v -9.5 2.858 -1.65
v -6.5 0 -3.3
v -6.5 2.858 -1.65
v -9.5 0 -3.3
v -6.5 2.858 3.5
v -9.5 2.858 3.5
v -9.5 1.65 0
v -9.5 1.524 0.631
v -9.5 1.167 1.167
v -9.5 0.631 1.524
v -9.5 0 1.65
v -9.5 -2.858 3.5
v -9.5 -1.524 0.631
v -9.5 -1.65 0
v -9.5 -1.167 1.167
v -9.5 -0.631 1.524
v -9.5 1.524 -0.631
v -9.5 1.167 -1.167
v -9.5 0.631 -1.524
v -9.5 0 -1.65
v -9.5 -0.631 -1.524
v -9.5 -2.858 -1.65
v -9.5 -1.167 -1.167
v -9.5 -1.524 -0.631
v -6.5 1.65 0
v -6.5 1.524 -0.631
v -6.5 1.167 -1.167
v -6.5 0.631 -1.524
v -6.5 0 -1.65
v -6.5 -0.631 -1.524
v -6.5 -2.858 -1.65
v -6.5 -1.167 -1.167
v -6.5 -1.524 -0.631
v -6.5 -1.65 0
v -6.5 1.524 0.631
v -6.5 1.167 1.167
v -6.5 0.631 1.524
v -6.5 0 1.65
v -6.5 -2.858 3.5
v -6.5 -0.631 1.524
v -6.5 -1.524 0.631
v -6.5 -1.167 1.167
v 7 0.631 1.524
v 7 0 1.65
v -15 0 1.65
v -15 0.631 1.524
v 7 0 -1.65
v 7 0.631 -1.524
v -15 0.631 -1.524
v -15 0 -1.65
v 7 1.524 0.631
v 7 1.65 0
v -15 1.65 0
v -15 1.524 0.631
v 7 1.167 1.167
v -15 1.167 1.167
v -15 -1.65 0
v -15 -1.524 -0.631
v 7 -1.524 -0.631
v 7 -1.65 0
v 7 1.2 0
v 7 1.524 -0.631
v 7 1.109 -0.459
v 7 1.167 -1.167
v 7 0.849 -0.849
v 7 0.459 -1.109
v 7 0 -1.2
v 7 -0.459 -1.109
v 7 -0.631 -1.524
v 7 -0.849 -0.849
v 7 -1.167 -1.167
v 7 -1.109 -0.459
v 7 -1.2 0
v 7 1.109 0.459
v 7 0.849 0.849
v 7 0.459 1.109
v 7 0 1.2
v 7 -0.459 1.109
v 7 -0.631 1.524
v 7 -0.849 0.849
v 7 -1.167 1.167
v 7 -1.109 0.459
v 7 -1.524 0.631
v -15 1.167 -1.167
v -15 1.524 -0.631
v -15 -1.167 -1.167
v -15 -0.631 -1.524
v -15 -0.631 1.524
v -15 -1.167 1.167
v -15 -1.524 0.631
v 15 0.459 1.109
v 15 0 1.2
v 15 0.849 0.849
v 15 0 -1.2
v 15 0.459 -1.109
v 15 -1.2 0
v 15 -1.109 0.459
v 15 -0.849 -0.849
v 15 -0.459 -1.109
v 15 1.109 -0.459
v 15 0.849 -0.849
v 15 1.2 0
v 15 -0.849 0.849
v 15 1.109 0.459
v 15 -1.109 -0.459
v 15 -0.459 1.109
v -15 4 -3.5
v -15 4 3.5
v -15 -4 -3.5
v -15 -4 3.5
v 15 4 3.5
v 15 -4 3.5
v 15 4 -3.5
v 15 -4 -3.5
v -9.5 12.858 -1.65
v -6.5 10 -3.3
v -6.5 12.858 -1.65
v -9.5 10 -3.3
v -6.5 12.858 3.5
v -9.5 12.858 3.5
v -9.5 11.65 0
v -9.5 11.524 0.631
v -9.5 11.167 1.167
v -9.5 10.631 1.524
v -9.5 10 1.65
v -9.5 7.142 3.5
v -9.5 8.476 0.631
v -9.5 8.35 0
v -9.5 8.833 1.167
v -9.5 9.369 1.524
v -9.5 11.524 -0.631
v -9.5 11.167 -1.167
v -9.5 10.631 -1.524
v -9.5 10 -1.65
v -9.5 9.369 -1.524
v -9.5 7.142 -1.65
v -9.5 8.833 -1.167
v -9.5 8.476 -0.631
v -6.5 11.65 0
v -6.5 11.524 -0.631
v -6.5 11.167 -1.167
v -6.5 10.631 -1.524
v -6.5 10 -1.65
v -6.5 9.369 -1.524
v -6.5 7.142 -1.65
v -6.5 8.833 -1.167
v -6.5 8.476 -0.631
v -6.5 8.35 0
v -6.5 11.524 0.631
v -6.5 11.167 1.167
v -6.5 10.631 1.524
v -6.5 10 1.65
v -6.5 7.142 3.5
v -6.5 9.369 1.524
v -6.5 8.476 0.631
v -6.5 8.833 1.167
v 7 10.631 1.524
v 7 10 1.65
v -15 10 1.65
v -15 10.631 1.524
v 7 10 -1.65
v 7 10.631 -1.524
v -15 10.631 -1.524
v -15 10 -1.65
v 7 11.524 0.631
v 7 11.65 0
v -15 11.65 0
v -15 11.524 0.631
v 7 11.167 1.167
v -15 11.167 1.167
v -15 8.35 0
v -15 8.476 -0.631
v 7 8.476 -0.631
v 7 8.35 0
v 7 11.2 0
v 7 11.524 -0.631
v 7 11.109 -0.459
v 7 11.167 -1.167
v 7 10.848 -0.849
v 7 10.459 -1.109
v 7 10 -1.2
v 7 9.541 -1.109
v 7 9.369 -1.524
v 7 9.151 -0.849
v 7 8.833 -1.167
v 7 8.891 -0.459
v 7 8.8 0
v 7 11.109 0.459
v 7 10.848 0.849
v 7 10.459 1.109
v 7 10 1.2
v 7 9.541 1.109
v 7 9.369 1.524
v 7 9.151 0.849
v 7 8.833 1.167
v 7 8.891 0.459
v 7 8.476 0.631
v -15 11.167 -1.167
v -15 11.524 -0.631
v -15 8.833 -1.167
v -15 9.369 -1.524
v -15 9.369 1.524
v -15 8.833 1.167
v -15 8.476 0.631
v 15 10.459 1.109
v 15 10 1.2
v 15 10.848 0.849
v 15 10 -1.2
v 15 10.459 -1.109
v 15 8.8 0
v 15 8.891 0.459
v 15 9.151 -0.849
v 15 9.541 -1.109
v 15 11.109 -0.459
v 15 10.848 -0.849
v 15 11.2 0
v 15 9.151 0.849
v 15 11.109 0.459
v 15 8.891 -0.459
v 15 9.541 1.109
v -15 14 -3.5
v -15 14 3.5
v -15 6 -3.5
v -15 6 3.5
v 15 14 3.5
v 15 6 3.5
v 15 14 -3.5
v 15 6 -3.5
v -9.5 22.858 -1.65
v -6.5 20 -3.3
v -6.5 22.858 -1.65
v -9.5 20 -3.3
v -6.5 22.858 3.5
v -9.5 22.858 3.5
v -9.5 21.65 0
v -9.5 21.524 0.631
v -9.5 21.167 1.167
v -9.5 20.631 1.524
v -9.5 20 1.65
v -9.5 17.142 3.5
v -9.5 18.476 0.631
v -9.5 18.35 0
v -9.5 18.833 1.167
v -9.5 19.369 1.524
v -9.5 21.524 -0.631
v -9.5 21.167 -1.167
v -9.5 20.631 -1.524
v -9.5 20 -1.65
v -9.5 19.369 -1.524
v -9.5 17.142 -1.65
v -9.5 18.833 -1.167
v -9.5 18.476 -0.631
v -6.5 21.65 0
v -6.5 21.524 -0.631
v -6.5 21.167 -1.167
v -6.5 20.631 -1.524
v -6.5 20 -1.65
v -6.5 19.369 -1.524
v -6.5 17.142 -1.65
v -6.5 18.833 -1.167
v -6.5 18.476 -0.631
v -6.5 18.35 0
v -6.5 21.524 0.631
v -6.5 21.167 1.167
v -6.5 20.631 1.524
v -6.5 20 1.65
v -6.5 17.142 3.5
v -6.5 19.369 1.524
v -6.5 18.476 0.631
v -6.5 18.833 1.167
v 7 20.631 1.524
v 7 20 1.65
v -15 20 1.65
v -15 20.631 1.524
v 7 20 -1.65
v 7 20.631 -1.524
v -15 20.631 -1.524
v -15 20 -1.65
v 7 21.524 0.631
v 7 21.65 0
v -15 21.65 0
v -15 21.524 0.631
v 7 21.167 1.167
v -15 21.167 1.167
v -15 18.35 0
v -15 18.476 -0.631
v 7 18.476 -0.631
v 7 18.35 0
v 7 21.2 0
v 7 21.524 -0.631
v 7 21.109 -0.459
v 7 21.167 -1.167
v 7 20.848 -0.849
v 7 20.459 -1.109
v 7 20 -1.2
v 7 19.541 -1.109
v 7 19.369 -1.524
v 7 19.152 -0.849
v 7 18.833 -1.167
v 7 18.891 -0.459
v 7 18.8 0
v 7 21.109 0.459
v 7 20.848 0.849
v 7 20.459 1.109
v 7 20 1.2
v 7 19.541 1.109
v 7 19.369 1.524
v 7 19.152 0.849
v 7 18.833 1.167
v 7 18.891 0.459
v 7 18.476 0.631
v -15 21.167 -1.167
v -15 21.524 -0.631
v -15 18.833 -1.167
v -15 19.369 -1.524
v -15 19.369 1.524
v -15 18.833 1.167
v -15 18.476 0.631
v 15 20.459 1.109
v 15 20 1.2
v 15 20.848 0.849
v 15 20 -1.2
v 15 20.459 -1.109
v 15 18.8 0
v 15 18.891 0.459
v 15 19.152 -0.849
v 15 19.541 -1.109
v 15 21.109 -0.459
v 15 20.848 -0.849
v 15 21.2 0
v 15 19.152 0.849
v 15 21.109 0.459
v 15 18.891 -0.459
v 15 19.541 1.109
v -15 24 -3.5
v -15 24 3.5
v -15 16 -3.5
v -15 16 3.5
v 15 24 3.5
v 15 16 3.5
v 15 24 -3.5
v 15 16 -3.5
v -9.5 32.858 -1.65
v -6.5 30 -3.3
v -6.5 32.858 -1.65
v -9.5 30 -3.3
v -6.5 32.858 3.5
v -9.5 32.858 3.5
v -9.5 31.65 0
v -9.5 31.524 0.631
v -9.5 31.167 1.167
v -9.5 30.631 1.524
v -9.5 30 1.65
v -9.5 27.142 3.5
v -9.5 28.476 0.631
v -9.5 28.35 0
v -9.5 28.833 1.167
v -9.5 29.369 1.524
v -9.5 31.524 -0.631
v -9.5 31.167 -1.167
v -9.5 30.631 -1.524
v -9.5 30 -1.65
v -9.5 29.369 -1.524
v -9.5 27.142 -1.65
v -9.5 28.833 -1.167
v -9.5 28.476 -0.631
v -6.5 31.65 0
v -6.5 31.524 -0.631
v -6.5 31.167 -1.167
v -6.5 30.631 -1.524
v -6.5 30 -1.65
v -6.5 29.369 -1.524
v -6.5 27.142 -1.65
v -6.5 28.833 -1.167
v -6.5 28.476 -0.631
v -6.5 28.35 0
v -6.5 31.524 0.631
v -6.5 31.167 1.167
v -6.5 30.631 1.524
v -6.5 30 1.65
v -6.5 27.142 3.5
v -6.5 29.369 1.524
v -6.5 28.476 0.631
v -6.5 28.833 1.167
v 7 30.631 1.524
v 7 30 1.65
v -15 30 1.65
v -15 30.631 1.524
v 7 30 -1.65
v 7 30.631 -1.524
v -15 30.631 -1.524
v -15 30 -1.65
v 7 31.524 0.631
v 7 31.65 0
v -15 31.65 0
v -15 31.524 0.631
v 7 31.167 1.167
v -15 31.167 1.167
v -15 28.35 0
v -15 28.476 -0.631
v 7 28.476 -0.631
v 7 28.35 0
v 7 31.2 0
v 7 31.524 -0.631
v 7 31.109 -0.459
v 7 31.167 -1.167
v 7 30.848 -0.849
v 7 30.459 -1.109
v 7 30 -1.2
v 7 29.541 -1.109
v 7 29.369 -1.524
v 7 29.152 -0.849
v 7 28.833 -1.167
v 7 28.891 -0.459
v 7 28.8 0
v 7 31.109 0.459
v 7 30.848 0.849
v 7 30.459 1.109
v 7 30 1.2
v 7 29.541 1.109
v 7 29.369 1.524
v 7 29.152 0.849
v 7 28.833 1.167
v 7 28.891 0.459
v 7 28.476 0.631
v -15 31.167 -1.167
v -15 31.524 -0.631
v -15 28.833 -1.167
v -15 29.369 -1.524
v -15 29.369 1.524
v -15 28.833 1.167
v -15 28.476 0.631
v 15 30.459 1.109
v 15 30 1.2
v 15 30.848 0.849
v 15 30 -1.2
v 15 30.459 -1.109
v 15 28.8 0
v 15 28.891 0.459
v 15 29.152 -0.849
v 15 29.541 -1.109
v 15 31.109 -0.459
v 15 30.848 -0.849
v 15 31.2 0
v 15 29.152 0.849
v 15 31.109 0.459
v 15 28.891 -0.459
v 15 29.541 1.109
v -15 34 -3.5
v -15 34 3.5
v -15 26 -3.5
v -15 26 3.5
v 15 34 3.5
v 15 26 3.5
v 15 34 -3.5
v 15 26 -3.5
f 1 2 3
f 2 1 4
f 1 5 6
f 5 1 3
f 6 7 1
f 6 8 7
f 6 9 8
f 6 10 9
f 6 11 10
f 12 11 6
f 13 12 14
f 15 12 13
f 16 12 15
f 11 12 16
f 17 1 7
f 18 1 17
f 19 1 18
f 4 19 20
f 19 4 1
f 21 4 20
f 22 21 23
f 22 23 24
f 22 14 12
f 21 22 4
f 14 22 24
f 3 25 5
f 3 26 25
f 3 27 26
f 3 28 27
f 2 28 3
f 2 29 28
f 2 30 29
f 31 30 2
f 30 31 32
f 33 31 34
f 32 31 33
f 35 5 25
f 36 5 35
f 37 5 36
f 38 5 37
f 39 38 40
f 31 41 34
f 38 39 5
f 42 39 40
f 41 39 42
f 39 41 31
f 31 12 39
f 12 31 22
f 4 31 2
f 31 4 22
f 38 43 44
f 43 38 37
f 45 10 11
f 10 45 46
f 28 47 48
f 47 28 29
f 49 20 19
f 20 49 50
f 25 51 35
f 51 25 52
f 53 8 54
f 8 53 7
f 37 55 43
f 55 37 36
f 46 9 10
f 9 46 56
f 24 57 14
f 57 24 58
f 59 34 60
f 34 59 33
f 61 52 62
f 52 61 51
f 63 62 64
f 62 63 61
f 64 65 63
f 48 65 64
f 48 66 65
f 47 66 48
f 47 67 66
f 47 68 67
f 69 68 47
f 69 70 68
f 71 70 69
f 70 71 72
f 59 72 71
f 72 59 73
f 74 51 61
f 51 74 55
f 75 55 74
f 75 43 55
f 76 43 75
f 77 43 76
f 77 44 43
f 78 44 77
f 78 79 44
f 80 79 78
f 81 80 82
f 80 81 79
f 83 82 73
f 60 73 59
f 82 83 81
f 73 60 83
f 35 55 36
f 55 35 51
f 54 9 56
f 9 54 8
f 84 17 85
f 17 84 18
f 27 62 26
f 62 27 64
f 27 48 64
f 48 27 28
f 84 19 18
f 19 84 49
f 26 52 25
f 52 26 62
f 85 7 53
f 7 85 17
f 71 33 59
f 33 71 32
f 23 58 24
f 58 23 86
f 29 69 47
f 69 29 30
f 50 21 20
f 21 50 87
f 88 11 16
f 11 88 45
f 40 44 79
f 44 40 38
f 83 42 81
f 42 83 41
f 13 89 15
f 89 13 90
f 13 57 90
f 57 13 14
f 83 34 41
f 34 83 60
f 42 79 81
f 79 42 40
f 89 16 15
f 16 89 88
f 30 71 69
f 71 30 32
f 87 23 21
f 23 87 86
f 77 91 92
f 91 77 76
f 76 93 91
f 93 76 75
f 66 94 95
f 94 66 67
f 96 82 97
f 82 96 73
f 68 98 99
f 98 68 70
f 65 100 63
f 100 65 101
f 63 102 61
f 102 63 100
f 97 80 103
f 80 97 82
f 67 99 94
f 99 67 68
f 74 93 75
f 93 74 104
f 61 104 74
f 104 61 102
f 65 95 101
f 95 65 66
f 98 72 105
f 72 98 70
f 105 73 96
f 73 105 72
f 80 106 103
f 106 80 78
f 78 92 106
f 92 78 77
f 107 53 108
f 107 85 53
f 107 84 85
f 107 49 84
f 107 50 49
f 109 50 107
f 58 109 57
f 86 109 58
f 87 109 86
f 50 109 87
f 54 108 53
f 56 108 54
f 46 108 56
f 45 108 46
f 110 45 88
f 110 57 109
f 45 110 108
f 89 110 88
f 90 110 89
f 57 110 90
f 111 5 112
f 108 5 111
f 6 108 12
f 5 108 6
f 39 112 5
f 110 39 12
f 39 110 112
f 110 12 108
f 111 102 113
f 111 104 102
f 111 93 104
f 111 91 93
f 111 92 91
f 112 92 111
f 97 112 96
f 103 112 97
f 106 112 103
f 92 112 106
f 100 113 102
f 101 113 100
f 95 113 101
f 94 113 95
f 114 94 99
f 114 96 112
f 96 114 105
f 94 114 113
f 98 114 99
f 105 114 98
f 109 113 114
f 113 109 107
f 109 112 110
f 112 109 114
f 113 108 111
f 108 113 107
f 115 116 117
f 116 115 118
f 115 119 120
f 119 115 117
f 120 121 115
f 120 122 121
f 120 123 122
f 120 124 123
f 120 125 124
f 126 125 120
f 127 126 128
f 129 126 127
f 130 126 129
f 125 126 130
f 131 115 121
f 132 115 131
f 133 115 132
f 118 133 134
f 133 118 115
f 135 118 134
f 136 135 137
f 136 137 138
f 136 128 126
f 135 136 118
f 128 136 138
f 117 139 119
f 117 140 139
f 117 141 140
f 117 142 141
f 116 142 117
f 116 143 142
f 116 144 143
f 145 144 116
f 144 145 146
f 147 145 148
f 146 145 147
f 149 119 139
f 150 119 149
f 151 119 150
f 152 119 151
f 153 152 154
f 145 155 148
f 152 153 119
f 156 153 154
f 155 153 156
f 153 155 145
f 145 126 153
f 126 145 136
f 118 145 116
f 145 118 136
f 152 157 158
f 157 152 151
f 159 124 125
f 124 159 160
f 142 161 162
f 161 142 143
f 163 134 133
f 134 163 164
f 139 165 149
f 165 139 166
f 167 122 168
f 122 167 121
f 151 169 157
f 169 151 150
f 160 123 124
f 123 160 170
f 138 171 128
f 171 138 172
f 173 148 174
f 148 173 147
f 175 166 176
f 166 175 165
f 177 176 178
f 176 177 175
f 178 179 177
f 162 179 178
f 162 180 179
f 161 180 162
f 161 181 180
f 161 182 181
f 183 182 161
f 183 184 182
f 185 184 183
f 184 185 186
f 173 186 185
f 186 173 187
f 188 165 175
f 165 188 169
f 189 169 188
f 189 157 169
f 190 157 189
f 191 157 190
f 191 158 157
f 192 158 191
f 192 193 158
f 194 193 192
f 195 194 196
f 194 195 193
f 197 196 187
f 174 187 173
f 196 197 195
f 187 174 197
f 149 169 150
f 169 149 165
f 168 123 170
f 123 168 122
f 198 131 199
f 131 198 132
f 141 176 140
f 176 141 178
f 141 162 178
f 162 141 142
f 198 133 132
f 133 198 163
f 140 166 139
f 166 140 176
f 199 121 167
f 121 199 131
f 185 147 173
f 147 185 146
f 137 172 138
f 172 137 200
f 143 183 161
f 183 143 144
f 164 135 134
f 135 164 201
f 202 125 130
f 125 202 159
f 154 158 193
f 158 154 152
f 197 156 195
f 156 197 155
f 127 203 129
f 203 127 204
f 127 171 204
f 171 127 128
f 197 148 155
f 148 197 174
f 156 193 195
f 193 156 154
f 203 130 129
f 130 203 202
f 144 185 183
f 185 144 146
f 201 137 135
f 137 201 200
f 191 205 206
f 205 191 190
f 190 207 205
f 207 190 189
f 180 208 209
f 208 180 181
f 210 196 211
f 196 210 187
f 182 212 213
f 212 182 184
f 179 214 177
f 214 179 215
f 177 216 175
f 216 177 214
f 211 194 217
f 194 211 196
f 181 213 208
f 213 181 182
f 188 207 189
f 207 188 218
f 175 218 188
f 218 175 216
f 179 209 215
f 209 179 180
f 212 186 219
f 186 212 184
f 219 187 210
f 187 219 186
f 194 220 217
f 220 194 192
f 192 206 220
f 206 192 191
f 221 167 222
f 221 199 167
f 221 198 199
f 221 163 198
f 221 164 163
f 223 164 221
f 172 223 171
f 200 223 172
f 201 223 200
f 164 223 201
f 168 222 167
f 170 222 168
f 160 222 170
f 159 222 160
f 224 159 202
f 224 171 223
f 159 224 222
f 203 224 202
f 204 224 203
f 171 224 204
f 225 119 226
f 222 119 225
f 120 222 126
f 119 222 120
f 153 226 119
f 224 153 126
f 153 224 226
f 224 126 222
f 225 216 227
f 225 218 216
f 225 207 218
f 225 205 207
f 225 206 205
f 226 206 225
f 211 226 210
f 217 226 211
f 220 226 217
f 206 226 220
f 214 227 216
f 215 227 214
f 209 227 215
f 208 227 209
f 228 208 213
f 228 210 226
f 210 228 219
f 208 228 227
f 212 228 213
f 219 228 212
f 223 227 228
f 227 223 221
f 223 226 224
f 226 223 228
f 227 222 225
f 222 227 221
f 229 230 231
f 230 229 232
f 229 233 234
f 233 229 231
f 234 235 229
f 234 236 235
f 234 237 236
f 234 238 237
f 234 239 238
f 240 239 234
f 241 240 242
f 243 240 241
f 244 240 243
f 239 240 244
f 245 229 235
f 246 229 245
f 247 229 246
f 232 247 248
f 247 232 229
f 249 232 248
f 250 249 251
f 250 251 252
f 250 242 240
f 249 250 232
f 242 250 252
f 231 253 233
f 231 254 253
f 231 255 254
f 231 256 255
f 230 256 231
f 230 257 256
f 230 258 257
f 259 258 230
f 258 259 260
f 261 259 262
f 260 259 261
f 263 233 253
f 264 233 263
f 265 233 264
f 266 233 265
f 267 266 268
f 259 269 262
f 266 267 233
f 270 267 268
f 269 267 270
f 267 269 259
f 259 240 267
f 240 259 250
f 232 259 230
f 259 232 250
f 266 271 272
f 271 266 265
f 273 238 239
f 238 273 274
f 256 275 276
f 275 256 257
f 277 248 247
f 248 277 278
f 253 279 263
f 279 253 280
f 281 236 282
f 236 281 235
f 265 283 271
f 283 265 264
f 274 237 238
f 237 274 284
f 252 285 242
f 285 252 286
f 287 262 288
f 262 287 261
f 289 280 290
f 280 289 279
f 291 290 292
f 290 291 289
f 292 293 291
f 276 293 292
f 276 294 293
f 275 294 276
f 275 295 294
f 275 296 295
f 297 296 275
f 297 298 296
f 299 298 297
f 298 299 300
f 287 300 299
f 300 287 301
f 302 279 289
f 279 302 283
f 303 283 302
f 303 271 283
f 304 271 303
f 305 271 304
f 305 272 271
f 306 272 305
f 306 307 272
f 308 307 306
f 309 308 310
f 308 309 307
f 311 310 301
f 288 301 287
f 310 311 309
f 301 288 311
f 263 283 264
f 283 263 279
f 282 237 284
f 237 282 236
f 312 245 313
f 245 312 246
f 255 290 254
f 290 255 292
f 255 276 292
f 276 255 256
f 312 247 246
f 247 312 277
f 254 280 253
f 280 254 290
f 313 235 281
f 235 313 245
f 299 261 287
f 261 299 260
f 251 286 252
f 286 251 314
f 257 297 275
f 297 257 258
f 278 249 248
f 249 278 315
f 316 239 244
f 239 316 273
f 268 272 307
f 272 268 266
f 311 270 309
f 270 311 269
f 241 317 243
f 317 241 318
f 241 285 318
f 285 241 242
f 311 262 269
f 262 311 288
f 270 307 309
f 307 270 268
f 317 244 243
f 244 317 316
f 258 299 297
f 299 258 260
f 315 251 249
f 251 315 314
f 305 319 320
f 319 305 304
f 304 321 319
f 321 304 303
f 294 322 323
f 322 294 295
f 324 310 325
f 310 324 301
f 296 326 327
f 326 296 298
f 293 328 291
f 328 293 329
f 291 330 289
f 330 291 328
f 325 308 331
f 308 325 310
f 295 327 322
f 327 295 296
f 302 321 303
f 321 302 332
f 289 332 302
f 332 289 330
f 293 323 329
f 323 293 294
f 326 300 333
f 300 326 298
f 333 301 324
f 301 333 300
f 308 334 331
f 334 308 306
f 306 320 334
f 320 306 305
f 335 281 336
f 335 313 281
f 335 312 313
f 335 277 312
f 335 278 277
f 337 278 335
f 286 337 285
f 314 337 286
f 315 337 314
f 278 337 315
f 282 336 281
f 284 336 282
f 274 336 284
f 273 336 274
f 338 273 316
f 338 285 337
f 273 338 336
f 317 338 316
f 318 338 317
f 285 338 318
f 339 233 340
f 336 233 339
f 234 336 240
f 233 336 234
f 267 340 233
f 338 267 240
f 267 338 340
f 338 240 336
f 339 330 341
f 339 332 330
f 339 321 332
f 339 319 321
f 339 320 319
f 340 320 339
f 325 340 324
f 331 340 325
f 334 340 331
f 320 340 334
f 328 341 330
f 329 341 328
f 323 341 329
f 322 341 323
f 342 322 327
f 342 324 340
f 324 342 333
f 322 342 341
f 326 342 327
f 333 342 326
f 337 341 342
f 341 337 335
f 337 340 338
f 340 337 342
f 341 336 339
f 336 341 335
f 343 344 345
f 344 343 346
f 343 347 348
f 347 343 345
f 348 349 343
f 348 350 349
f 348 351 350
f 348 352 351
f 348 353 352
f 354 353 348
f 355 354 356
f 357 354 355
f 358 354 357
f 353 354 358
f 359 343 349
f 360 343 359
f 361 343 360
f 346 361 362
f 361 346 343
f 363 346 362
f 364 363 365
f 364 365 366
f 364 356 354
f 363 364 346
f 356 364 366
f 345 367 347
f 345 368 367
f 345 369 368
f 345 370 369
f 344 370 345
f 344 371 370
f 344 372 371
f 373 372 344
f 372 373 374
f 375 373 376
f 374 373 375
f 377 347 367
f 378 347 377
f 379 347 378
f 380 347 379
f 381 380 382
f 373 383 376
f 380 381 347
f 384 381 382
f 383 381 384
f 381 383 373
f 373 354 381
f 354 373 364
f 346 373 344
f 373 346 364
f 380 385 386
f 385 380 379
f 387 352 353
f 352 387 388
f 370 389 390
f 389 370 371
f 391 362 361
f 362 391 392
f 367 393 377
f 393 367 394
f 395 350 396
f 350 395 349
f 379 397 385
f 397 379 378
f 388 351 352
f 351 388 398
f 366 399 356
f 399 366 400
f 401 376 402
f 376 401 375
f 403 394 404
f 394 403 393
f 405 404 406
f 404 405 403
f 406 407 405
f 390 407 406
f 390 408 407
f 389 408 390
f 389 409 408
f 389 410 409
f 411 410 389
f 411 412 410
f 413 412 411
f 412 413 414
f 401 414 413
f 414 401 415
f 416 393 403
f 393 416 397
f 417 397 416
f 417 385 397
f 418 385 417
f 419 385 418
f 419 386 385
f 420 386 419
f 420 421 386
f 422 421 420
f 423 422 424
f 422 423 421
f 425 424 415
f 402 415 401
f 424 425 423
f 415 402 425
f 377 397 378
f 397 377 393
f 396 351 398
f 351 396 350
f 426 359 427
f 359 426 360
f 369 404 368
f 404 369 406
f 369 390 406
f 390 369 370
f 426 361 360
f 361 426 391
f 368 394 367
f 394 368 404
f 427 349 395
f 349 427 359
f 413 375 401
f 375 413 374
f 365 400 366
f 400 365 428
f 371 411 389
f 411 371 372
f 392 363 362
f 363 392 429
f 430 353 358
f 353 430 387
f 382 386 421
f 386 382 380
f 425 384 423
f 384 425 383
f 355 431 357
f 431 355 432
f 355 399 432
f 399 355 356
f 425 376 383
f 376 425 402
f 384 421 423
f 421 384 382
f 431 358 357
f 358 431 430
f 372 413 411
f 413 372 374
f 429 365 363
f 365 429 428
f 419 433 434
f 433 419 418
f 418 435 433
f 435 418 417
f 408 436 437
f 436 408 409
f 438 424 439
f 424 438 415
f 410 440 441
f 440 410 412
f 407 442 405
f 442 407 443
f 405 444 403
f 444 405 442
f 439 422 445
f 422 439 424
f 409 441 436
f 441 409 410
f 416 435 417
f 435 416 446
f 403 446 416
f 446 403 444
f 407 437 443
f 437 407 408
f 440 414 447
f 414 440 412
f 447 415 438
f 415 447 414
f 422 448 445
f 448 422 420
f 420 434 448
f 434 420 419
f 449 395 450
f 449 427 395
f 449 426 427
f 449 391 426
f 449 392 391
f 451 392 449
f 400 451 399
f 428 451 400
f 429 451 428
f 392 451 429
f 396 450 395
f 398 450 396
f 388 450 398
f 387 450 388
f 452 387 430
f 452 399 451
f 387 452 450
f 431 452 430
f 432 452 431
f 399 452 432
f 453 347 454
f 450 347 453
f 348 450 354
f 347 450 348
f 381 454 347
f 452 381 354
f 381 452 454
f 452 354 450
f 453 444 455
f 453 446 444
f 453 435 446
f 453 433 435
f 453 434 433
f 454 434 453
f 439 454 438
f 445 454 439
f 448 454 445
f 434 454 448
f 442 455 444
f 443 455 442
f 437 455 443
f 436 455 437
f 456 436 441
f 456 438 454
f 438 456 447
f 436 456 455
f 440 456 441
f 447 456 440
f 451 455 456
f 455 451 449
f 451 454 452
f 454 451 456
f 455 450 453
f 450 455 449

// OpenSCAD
// file: ../../../configuration.scad
/*
	Konfiguracni soubor 3D tiskarny RebeliX BoX
	
	Sledujte nas na:		  
			www.RebeliX.cz
			www.facebook.com/RebeliX.cz
			https://twitter.com/reprap4u
			https://plus.google.com/+Reprap4uCz-3Dtiskarna-RebeliX
			
	License: GNU GPL v3
*/


/* ========================== Z probe ======================= */

// Prumer Z probe
Z_probe_D = 12.2;
// Delka Z probe
Z_probe_H = 62;
// Delka zavitu
Z_probe_screw_H = 42;
// Prumer matky k sonde
Z_probe_nut_D = 19;
// Vyska matky
Z_probe_nut_H = 3.8;
// Prumer podlozky k sonde
Z_probe_washer_D = 22;


/* ================ Parametry energo retezu ================= */

// Sirka zarazek retezu
mantinel_W = 1.4; 

// Sirka prichytu retezu (v miste, kde jsou otvory na pridelani)
chain_mount_W = 18;

// Vyska retezu 
chain_H = 15.4;
//chain_H = 14.8;

// Sirka retezu
chain_W = chain_mount_W + 0.9;

//Vzdalenost od profilu
chain_x_offset = 1.5;


/* =================== Nastaveni pro osu Z ================== */

// Prumer hlazene tyce
//rod_D = 8.1; // 8 mm
rod_D = 10.1; // 10 mm
//rod_D = 12.2; // 12 mm

// Vzdalenost stredu hlazene tyce od hrany profilu
rod_offset = 20;

// Prostor kolem maticky pro pridelani heatbed
mount_dia = 20;


/* ============== Parametry kolejnice a voziku ============== */

// Sirka kolejnice
rail_W = 12;

// Tloustka kolejnice
rail_H = 8;

// Jak daleko od rezu je prvni otvor v kolejnici
rail_first_hole = 11;

// Vzdalenost otvoru v kolejnici
rail_hole_distance = 25;

// Otvory pro pridelani na voziku MGN12
MGN12_holes = [
  [10, 10, 0],
  [10, -10, 0],
  [-10, -10, 0],
  [-10, 10, 0]
];

// Vyska pojezdu MGN12_H i s kolejnici
MGN12_H = 13;

// Sirka voziku MGN12
MGN12_W = 27;


/* ======================= Obecne =========================== */

// Sirka hlinikoveho profilu
profile_width = 30;

// Radius zakulacenych rohu
corner_rad = 6; 


/* ================== Spojovaci material ==================== */

// --------------- M3 ----------------
// Prumer hlavy M3 sroubu
M3_head_D = 6.5;

// Prumer M3 sroubu
M3_screw_D = 3.3;

// Vyska hlavy M3 sroubu
M3_head_H = 2;

// Prumer M3 podlozek
M3_washer_D = 6.8;

// Tloustka M3 podlozky
M3_washer_H = 0.5;

// Prumer M3 matky
M3_nut_D=6.6;

// Vyska M3 matky
M3_nut_H = 3;

M3x10_offset = 6; // Sroub M3x10;

// --------------- M4 ----------------

// Prumer hlavy M4 sroubu
M4_head_D = 6.4;

// Prumer M4 matky
M4_nut_D=8.4;

// Vyska M4 matky
M4_nut_H=3.5;

// Prumer M4 sroubu
M4_screw_D = 4.3;

// Tloustka M4 podlozky
M4_washer_H = 0.8;

// --------------- M6 ----------------

// Prumer hlavy M6 sroubu
M6_head_D = 11.6;

// Prumer M6 sroubu
M6_screw_D = 6.3;

// Vyska hlavy M6 sroubu
M6_head_H = 3.6;
//M6_head_H = 4.5;

// Prumer M6 podlozek
M6_washer_D = 18;

// Tloustka M6 podlozky
M6_washer_H = 2;

M6x14_offset = 7; // Sroub M6x14;

// Sirka matky do profilu (pokud neni pouzita, tak 0)
//profile_nut_W = 12.1;
profile_nut_W = 9.5;
//profile_nut_W = 0;

/* ======================== Remenice ======================== */

// ------------- GT2/20 --------------

// Vyska ozubeneho kolecka
GT2_pulley_H = 16;
// Prumer v miste zubu na ozubenem kolecku
GT2_pulley_gear_D = 12.2;
// Vydalenost zubu na ozubenem kole od hrany s cervikem
GT2_pulley_teeth_offset = 7;

// Vyska ozubeneho kolecka 
pulley_H = GT2_pulley_H;
// Prumer v miste zubu na ozubenem kolecku
pulley_gear_D = GT2_pulley_gear_D;
// Vydalenost zubu na ozubenem kole od hrany s cervikem
pulley_teeth_offset = GT2_pulley_teeth_offset;


/* ========================== Remen ========================= */

// -------------- GT2 ----------------
 
belt_tooth_distance = 2;
belt_tooth_ratio = 0.5;

// Tloustka remenu
//belt_thick = 2.5;
belt_thick = 1.6; //1.4

// Sirka remenu
belt_width = 6;

// Tloustka dvou remenu "zakousnutych" do sebe
belt_lock_thickness = 2*belt_thick;

belt_core_thickness = 0.75;
belt_tooth_height = 1.7;

// Vyska zubu na remenu
//belt_tooth_height = 0.8;

//belt_core_thickness = 0.75;
//belt_tooth_height = 1.7;

// -------------- T2.5 ----------------

//belt_tooth_distance = 2.5;
//belt_tooth_ratio = 0.68;


/* ======================= Loziska ========================== */

// ----------- Lozisko 608 ----------- 

// Vnejsi prumer loziska
bearing_608_OUT_D = 22.1;
// Vnitrni prumer loziska
bearing_608_IN_D = 8;
// Vnejsi prumer otocneho stredu loziska
bearing_608_CENTER_D = 13;
// Vyska loziska
bearing_608_H = 7;

// ----------- Lozisko F624 ----------

// Vnejsi prumer loziska
bearing_F624_OUT_D1 = 16;
// Vnejsi prumer zuzene casti loziska
bearing_F624_OUT_D2 = 13;
// Vnitrni prumer loziska
bearing_F624_IN_D = 4;
// Vnejsi prumer otocneho stredu loziska
bearing_F624_CENTER_D = 0;
// Vyska loziska
bearing_F624_H = 5;
// Vyska okraje na lozisku
bearing_F624_Flange_H = 1;

// ----------- Lozisko F623 ----------

// Vnejsi prumer loziska
bearing_F623_OUT_D = 10;
// Vnitrni prumer loziska
bearing_F623_IN_D = 3;
// Vyska loziska
bearing_F623_H = 4;

// --------- Axialni lozisko ---------

// Prumer loziska
axial_bearing_D = 16 + 0.8;
// Vyska spodni casti
axial_bearing_H1 = 1;
// Vyska casti s kulickami
axial_bearing_H2 = 4;


/* ==================== Idler X,Y,Z ========================= */

// ---------- Idler 2x F624 ----------
///*
idler_OUT_D1 = bearing_F624_OUT_D1;
idler_OUT_D2 = bearing_F624_OUT_D2;
idler_IN_D = bearing_F624_IN_D;
idler_CENTER_D = bearing_F624_CENTER_D;
idler_H = 2*bearing_F624_H;
idler_Flange_H = bearing_F624_Flange_H;
idler_Flange_Deep = 0; 

// -------- Idler M4 - sroub ---------
// Prumer sroubu
idler_screw_D = M4_screw_D;
// Prumer hlavy sroubu
idler_screw_head_D = M4_head_D;
// Prumer matky
idler_nut_D = M4_nut_D;
// Vyska matky
idler_nut_H = M4_nut_H;
// Tloustka podlozky
idler_washer_H = M4_washer_H;
//*/


// ---------- Idler pulley (20T W6 Bore 3mm without T) ----------
/*
idler_OUT_D1 = 18;
idler_OUT_D2 = GT2_pulley_gear_D;
idler_IN_D = 3;
idler_CENTER_D = 4;
idler_H = 8.5;
idler_Flange_H = (idler_H - 6.5)/2;
idler_Flange_Deep = 0; 

// ---===== M3 - sroub =====--- 
// Prumer sroubu
idler_screw_D = M3_screw_D;
// Prumer hlavy sroubu
idler_screw_head_D = M3_head_D;
// Prumer matky
idler_nut_D = M3_nut_D;
// Vyska matky
idler_nut_H = M3_nut_H;
// Tloustka podlozky
idler_washer_H = M3_washer_H;
*/


/* ===================== Lozisko osa Z ========================= */

big_bearing_OUT_D = bearing_608_OUT_D;
big_bearing_IN_D = bearing_608_IN_D;
big_bearing_CENTER_D = bearing_608_CENTER_D;
big_bearing_H = bearing_608_H;


/* ==================== Idler extruder ========================= */

// ---------- Idler 1x 623 ----------

ext_idler_OUT_D = bearing_F623_OUT_D;
ext_idler_IN_D = bearing_F623_IN_D;
ext_idler_H = bearing_F623_H + 4*M3_washer_H;

ext_idler_screw_D = M3_screw_D;
ext_idler_nut_D = M3_nut_D;
ext_idler_nut_H = M3_nut_H;
ext_idler_washer_H = M3_washer_H;


/* ================ Slic3r nastaveni ======================== */

// Vyska vrstvy pro tisknuti dilu [mm]
layer_height = 0.3;

// Sirka vytlacovaneho materialu [mm]
extrusion_width = 0.66; //Slic3r->Print Settings->Advanced->Default extrusion width


/*=================== Nastaveni dilu =========================*/

// Tloustka rohovych spojek
// 5 mm => sroub M6x14 s podlozkou
// 3 mm => sroub M6x12 s podlozkou
coupler_thickness = 5;


/* ======================= Motory =========================== */

// Montazni otvory motoru
motor_mount_holes = [
  [-31/2,-31/2,0],
  [31/2,-31/2,0],
  [31/2,31/2,0],
  [-31/2,31/2,0]
];

// Sirka motoru NEMA17
motor_width = 42.3;

// Delka motoru
//SX17-1003LQFE
motor_length = 29.5;
//SX17-1003, SX17-0503LQEF
//motor_length = 34;
//SX17-1005
//motor_length = 40;
//SX17-0905
//motor_length = 48;
// main file
/* 
   === RebeliX BoX ===

   sloupek pro drzak elektroniky RUMBA
   GNU GPL v3
   Martin Neruda <neruda@RebeliX.cz>
   http://www.RebeliX.cz
*/

//include <../../configuration.scad>
include <../../inc/functions.scad>

length = 30;

module base()
{
  cube([length,8,7],center=true);
}

module cuts()
{
  translate([-length/2+7,0,0]) rotate([0,-90,0]) nut_hole(0);
  translate([length/2,0,0]) rotate([0,-90,0]) cylinder(d=2.4,h=20,$fn=16,center=true);
}

module sloupek()
{
  difference()
  {
	base();
	cuts();
  }
}

for(i=[0:10:30])
{
  translate([0,i,0]) sloupek();
}
